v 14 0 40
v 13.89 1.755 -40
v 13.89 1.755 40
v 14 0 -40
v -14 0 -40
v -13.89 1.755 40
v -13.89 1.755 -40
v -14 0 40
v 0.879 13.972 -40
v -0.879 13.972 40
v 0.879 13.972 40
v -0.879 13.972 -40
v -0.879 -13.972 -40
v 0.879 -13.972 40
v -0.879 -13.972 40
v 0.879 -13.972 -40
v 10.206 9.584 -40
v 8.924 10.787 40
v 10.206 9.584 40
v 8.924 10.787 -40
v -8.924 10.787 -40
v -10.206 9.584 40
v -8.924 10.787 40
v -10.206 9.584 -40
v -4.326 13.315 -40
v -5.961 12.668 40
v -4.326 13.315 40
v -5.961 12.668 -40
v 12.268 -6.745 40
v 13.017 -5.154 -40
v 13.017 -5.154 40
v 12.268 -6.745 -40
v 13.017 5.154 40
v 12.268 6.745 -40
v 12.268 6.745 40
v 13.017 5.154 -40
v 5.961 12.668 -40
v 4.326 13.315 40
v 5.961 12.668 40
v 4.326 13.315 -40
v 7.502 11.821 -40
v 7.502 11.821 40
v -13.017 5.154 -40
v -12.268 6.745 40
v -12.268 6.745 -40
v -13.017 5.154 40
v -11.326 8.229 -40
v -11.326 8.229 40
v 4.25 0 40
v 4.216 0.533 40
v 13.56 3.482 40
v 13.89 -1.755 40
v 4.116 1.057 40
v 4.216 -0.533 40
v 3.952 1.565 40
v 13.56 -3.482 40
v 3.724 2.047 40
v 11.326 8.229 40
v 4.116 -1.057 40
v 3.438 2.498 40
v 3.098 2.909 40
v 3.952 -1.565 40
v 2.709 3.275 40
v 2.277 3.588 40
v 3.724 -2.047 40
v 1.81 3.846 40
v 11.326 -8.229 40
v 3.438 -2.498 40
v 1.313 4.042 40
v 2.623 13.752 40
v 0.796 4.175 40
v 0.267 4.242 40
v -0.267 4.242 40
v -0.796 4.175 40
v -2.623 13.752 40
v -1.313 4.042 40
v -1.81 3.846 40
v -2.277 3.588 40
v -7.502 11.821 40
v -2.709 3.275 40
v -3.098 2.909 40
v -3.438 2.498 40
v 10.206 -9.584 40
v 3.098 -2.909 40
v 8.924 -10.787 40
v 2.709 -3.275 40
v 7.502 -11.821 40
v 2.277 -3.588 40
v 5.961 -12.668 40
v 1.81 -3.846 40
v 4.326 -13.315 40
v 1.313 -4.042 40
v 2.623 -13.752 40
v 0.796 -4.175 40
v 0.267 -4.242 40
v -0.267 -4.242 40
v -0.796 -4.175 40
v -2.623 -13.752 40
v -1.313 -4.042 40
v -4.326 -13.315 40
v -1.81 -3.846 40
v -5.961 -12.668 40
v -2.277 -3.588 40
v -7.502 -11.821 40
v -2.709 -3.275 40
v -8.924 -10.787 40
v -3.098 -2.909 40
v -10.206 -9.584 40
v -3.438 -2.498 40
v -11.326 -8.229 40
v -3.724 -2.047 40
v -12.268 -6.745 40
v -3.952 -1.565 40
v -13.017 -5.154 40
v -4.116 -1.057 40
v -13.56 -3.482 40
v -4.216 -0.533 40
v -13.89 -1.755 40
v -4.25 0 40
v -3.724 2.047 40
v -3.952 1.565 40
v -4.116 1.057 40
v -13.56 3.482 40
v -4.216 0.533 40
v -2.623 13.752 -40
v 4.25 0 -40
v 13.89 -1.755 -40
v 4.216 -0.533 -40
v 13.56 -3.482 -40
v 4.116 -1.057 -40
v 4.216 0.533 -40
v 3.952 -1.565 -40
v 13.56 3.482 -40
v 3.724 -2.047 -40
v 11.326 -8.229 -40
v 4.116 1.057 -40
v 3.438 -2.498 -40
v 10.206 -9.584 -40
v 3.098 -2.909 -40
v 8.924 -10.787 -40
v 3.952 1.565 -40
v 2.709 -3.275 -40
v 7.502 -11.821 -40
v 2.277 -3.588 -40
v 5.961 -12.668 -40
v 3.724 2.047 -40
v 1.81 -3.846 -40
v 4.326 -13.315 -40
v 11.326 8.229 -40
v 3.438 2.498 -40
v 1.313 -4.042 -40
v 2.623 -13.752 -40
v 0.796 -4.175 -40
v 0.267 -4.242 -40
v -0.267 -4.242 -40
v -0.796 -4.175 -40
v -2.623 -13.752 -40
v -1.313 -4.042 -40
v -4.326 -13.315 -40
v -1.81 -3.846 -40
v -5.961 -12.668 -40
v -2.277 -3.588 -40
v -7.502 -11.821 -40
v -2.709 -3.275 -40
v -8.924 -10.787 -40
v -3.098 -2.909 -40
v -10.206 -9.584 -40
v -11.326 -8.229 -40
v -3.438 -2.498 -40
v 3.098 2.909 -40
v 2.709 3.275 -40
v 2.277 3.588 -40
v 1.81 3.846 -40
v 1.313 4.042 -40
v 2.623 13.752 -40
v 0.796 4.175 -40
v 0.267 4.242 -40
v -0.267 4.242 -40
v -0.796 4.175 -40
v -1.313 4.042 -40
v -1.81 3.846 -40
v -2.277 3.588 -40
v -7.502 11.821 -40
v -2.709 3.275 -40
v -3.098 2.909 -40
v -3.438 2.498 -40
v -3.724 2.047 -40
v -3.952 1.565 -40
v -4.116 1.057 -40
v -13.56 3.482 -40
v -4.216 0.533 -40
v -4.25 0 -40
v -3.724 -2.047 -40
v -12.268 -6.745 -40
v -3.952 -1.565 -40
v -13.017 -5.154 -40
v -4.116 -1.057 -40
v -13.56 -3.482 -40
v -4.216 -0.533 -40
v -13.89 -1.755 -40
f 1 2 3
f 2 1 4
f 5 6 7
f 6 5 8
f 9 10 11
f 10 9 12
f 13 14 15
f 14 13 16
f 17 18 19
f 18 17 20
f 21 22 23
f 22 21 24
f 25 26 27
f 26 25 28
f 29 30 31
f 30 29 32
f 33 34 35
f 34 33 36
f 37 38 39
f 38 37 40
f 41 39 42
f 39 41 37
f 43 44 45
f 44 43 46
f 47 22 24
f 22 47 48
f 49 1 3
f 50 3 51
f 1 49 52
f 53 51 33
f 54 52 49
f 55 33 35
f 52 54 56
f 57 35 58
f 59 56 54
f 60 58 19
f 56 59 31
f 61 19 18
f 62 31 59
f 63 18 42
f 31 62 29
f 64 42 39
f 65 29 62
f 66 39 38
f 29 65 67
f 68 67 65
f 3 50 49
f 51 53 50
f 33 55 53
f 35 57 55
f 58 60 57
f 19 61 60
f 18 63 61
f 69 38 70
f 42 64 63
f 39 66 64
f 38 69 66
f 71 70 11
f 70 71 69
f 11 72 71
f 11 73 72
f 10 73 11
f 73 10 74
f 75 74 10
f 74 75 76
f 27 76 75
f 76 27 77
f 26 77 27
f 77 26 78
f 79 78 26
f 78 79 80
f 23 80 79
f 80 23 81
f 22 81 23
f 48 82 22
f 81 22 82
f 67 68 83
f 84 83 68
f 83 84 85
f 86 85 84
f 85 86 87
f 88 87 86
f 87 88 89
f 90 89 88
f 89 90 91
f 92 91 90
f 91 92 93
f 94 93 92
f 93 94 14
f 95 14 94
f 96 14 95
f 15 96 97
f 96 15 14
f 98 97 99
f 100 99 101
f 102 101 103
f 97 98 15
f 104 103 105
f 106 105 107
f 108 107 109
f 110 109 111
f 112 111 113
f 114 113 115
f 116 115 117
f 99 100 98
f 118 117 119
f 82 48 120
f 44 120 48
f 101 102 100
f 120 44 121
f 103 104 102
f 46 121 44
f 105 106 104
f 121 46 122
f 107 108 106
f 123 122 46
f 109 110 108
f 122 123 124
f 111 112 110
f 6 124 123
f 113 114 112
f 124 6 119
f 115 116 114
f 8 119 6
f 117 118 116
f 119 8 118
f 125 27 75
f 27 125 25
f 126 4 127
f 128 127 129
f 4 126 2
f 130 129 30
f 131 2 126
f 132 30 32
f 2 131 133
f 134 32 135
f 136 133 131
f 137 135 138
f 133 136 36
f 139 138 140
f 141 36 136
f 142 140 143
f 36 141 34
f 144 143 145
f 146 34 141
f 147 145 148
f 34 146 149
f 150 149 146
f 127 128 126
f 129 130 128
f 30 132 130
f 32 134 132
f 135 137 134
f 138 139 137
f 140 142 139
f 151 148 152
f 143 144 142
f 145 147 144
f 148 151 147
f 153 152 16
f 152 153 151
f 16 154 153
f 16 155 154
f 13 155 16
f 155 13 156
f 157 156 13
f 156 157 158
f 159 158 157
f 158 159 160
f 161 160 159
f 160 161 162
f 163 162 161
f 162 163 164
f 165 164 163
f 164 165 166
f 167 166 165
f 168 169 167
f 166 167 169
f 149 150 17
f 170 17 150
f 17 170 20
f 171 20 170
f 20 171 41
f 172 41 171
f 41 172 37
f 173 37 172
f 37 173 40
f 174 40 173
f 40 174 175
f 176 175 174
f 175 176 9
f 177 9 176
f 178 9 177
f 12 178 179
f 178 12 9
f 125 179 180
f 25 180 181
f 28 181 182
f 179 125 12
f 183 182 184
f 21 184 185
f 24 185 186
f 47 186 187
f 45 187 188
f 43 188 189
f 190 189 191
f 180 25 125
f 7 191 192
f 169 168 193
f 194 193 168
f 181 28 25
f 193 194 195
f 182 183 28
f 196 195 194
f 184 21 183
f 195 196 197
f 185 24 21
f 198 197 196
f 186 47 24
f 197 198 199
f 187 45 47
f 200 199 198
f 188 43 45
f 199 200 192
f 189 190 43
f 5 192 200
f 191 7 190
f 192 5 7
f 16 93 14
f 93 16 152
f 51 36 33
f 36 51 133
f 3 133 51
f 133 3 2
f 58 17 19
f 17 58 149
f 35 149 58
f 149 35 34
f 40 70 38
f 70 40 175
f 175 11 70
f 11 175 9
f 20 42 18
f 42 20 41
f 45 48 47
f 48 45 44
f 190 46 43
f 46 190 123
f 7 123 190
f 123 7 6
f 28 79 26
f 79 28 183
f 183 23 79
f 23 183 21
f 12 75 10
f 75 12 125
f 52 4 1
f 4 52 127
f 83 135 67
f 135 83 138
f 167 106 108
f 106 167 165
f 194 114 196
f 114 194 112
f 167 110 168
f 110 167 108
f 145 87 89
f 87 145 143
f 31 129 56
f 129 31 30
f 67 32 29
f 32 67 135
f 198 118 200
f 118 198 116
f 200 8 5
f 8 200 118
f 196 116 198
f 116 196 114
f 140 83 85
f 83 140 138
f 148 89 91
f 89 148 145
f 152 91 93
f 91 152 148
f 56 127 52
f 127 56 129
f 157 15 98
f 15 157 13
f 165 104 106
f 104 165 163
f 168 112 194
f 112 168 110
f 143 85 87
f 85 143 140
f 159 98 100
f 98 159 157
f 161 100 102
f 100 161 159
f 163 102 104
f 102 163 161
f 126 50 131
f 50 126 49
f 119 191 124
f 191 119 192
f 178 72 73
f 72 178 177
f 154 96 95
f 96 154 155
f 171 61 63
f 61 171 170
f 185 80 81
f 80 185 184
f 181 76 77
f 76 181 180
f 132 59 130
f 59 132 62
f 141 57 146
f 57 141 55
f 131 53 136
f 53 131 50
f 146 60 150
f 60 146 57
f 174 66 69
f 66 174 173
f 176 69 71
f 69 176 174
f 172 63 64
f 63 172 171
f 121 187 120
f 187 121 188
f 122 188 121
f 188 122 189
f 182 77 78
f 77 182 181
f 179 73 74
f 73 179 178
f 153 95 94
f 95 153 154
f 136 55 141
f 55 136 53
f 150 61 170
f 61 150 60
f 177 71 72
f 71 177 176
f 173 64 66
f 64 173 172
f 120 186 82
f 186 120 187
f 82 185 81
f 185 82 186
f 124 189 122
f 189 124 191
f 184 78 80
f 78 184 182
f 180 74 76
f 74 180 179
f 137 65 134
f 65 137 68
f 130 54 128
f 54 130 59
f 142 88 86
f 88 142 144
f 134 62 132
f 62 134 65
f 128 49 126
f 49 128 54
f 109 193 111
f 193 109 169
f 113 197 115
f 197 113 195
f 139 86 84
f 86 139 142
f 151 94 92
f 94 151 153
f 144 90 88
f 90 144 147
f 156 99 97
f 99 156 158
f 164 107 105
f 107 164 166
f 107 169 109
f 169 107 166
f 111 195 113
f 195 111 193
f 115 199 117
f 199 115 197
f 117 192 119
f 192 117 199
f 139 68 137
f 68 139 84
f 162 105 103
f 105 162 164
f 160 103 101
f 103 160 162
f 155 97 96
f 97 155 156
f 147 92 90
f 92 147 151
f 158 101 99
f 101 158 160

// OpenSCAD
$fn = 50;


difference() {
	union() {
		translate(v = [0, 0, -40.0000000000]) {
			cylinder(h = 80, r = 14.0000000000);
		}
	}
	union() {
		translate(v = [0, 0, -100.0000000000]) {
			cylinder(h = 200, r = 4.2500000000);
		}
	}
}
